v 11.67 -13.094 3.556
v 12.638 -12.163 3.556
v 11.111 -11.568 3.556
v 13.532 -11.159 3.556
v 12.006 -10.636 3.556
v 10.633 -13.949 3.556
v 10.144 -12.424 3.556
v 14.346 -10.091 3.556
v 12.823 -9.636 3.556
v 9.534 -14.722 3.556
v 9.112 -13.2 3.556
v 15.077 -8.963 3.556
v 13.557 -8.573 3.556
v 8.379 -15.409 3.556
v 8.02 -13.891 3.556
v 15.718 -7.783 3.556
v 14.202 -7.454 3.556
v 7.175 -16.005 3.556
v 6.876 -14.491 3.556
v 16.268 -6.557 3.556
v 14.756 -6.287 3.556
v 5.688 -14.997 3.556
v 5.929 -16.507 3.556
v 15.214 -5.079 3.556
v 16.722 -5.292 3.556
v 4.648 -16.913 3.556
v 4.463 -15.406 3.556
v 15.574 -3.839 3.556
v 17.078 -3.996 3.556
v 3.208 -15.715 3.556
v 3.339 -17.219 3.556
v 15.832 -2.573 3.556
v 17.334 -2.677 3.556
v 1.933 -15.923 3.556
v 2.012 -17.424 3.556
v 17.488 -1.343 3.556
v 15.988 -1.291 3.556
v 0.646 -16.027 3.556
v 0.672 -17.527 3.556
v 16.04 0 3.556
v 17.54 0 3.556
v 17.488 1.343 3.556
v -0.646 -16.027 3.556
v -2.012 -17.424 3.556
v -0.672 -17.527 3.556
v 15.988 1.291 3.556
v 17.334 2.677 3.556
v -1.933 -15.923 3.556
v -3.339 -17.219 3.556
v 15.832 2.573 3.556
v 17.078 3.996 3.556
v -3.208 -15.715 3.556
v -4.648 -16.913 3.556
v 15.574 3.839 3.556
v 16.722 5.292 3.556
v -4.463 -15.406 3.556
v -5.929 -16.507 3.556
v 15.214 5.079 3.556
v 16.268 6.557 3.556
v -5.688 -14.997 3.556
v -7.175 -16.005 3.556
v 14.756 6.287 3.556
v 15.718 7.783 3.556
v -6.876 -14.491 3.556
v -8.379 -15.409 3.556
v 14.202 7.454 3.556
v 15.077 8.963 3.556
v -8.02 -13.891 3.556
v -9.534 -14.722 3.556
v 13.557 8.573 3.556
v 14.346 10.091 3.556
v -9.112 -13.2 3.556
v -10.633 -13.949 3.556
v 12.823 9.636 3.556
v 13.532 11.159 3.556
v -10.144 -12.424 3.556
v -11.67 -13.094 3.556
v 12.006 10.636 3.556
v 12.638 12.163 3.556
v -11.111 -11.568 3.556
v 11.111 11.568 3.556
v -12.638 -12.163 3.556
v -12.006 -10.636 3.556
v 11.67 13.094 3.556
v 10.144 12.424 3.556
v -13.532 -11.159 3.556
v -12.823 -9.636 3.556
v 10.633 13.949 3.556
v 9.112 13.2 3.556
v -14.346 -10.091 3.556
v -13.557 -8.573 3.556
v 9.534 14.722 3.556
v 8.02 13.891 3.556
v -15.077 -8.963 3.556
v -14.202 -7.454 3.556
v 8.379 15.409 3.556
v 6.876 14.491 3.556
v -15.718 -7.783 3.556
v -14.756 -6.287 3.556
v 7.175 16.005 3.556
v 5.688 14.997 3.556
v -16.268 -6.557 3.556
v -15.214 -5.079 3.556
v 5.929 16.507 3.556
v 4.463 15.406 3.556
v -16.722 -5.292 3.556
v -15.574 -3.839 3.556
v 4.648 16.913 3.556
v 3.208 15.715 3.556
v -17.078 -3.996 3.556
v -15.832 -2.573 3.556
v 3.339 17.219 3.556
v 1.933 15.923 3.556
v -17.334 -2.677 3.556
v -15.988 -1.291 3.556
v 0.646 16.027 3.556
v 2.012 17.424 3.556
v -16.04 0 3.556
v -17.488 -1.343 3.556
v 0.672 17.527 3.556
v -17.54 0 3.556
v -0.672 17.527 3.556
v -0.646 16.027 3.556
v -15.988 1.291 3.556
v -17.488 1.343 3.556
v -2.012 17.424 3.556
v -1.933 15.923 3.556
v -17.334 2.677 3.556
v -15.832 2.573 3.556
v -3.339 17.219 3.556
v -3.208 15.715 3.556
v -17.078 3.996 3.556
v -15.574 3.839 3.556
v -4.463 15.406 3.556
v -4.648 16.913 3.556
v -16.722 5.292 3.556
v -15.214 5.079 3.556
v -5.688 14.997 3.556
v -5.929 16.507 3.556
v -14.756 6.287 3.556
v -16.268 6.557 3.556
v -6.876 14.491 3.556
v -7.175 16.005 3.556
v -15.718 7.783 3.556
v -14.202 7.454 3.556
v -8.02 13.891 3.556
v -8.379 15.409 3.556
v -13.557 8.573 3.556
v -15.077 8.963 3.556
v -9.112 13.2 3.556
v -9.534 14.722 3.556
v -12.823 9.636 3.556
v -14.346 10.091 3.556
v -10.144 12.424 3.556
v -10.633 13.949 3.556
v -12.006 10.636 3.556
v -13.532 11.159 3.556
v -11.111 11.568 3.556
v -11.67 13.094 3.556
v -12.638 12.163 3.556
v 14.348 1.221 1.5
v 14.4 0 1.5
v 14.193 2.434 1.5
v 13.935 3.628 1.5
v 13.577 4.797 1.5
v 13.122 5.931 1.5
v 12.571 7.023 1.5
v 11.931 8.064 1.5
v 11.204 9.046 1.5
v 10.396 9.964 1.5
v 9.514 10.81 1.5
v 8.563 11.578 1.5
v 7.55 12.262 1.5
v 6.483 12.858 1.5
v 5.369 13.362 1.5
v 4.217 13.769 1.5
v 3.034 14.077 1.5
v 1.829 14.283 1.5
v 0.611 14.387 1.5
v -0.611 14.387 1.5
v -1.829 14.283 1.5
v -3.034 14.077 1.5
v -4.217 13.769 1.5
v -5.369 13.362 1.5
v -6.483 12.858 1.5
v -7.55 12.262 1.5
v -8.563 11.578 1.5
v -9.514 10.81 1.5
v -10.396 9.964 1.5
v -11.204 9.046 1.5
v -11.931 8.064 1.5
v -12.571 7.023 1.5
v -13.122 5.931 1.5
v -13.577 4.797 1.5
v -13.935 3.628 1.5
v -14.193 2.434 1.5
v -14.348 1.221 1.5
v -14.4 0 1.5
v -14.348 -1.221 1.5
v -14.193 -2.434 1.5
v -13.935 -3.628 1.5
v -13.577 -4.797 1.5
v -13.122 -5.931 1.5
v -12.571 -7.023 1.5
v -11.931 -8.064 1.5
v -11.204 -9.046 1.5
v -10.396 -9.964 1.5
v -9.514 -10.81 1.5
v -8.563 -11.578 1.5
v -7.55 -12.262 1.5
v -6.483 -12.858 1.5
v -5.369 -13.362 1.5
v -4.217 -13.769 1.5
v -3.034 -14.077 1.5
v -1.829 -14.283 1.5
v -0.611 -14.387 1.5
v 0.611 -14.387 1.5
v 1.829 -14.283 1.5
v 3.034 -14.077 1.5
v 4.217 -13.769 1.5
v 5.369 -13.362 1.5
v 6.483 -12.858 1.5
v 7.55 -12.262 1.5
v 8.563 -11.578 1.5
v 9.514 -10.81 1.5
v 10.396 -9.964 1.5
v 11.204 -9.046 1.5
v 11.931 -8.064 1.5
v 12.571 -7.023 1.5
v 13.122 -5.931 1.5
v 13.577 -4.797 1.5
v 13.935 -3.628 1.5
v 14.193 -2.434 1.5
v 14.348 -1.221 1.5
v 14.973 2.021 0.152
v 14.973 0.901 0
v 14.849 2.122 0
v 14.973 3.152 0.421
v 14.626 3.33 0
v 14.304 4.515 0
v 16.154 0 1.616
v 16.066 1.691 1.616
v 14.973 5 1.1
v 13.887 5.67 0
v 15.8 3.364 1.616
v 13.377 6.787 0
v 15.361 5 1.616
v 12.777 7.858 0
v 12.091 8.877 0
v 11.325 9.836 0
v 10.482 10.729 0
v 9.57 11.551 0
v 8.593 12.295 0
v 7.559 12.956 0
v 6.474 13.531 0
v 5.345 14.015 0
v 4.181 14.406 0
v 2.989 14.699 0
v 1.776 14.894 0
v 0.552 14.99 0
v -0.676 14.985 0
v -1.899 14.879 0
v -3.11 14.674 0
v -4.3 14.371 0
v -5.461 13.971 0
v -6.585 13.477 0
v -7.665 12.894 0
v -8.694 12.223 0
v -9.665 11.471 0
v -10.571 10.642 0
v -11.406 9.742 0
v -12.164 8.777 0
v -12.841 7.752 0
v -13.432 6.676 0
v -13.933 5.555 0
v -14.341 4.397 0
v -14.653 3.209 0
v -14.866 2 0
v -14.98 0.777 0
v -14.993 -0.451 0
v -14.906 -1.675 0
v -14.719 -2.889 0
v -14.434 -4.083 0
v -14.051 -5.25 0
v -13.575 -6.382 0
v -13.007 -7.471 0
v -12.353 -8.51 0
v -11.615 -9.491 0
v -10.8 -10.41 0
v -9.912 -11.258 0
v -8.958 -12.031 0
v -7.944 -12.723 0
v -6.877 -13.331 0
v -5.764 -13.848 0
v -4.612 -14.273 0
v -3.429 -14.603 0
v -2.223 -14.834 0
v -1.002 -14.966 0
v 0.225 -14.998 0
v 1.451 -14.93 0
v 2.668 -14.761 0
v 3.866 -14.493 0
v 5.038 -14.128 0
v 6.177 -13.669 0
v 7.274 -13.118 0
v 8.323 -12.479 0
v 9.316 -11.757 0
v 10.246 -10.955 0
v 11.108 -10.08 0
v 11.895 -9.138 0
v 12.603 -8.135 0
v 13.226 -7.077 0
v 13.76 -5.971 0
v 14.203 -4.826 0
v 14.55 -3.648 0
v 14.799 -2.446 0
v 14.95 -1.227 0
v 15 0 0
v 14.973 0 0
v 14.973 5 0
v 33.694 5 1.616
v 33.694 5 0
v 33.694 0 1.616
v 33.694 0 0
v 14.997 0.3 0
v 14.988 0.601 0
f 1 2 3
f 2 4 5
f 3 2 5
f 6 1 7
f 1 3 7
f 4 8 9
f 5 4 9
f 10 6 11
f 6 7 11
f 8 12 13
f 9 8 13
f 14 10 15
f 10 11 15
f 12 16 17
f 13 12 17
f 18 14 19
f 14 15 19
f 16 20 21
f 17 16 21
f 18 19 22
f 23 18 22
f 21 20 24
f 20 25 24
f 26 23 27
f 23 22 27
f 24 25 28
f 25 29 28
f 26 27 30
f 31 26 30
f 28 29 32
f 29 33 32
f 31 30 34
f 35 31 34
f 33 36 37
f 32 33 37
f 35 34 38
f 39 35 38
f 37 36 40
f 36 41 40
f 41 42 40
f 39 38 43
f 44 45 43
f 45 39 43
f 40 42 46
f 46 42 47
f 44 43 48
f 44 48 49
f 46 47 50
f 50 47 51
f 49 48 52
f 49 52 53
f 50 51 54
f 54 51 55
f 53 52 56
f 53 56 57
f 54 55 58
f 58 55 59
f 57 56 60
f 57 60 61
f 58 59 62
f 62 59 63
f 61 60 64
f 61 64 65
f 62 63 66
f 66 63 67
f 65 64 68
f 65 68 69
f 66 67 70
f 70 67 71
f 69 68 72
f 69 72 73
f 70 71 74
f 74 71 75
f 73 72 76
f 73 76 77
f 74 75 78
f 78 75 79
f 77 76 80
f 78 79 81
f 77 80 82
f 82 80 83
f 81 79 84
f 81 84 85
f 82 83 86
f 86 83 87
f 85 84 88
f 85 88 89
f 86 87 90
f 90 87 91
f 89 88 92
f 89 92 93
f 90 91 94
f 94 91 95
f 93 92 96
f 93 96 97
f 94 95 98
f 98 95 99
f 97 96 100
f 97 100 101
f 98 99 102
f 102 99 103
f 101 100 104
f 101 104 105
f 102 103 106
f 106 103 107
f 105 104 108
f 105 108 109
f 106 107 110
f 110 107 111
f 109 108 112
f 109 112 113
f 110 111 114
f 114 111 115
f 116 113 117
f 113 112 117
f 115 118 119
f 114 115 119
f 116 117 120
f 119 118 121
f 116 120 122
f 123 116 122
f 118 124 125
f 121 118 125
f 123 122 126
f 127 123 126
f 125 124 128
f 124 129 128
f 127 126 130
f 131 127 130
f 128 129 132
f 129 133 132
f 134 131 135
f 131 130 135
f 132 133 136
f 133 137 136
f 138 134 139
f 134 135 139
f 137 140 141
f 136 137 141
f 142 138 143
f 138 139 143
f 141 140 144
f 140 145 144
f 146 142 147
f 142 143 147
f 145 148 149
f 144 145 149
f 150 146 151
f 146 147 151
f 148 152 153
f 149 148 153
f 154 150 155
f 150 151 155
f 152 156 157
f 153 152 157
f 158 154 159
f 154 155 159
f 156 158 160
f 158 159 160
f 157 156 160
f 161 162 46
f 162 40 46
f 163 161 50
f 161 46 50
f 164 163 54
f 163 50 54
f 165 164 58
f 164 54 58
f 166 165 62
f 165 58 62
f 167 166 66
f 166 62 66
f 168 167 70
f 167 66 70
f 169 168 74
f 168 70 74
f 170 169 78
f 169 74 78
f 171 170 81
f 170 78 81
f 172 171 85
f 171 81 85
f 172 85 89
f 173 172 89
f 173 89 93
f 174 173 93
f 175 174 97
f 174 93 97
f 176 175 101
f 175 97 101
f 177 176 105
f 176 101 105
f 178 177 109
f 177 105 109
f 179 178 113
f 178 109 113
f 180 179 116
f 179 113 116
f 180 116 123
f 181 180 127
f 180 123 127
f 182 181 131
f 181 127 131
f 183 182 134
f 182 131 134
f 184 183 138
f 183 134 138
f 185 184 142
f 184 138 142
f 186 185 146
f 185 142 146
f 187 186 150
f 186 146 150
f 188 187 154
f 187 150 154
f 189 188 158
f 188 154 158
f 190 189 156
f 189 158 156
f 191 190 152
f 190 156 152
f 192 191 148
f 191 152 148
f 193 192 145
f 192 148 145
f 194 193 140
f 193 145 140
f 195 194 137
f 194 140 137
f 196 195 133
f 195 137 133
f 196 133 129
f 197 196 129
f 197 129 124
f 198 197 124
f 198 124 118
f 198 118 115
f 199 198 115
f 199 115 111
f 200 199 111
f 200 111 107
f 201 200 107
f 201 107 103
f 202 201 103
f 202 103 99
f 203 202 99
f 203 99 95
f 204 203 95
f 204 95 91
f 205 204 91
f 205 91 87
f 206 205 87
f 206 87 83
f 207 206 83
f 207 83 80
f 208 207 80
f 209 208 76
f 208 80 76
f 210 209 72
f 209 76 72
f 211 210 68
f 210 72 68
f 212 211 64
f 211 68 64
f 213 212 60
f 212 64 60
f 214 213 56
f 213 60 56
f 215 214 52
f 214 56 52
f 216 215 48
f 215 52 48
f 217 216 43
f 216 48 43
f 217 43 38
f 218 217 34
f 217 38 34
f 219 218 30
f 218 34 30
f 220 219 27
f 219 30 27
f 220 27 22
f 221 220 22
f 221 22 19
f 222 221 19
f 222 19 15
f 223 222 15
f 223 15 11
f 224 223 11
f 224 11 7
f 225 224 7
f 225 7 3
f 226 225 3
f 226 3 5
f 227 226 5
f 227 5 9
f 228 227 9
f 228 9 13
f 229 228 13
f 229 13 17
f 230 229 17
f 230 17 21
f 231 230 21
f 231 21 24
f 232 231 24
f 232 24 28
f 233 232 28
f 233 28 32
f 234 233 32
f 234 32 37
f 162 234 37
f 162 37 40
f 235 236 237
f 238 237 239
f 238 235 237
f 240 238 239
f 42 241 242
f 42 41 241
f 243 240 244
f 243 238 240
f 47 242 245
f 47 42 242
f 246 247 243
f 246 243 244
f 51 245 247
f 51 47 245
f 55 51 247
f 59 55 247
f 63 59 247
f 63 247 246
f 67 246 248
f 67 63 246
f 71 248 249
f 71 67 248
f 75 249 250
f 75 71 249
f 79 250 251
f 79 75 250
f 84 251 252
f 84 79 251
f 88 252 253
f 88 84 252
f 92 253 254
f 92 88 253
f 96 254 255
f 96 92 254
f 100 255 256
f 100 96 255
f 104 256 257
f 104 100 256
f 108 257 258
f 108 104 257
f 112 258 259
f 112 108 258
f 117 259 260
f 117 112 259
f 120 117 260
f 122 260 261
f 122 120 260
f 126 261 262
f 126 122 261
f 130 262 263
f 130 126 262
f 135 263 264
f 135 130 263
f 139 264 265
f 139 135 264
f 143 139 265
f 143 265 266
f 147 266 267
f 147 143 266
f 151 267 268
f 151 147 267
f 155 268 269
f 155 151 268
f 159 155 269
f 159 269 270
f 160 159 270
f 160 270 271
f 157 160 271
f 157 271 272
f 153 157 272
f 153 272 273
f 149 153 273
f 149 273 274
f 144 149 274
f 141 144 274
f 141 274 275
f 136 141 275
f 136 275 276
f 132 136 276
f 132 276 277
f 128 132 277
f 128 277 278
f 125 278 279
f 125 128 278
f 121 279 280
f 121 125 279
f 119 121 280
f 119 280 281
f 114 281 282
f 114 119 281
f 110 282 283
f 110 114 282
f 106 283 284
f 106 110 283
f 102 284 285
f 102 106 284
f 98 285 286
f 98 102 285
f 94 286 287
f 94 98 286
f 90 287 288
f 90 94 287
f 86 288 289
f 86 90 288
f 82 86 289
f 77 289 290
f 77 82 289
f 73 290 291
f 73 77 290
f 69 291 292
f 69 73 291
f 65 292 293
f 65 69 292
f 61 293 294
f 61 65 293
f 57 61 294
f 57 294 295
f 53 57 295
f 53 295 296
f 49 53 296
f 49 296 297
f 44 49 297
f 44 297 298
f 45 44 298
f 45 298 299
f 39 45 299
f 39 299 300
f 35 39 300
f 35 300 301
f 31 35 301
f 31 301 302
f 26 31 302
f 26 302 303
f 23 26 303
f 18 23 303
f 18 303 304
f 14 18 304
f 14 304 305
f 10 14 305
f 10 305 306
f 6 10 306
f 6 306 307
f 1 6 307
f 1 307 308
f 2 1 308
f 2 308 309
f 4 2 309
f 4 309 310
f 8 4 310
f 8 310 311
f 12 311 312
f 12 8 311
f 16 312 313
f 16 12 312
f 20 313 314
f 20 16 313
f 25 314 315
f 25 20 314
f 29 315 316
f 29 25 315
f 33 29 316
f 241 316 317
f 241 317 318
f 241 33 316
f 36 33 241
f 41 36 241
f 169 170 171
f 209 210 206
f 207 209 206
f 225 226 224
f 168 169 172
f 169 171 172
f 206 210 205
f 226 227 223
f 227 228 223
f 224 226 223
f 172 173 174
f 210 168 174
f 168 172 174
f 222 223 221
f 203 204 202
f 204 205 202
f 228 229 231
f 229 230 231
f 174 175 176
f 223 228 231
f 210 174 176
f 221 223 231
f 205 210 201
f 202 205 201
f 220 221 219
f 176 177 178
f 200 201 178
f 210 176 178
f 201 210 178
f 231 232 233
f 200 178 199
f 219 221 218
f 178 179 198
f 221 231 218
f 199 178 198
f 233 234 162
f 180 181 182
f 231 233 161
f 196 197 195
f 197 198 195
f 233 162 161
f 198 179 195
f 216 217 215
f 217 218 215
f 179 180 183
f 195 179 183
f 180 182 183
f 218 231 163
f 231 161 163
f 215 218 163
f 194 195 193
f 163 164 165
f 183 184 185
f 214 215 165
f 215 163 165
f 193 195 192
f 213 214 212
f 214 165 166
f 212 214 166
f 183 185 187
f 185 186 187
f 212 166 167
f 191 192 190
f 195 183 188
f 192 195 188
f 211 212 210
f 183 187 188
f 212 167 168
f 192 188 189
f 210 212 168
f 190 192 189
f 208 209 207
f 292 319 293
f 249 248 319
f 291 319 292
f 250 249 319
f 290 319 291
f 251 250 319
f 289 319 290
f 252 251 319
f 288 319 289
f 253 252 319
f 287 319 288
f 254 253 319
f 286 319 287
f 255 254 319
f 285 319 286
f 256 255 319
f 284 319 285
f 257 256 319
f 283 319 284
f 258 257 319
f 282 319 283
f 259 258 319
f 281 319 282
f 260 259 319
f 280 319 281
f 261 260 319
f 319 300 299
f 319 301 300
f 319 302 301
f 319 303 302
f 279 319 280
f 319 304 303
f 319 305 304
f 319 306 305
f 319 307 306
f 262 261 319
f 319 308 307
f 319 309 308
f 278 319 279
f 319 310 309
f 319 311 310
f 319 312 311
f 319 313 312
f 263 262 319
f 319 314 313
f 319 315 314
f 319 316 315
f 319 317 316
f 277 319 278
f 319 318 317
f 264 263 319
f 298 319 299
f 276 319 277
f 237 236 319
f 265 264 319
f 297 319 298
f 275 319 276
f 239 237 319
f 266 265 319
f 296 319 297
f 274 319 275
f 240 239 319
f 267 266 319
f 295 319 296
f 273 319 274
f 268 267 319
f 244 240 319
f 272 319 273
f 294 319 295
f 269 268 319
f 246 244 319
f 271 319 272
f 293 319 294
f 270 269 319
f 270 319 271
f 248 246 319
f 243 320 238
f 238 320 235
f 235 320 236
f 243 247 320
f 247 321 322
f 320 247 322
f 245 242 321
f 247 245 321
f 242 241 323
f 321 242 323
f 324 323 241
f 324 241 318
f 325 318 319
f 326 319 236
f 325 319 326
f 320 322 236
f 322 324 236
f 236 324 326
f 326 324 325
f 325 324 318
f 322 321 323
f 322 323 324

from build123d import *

# Parameters (mm, degrees)
SKETCH001_AS_DRAWN_W              = 18.720886
SKETCH001_AS_DRAWN_H              = 1.61615
EXTRUDE_DEPTH                     = 5
EXTRUDE_ONTO_SKETCH001_ROLL_ANGLE = 90
REVOLVE_ONTO_SKETCH_ROLL_ANGLE    = 90


with BuildPart() as pan_handle:
    # Sketch001 as drawn → Extrude (new)
    with BuildSketch(Plane.XY):
        with Locations((24.33337, 0.808075)):
            Rectangle(SKETCH001_AS_DRAWN_W, SKETCH001_AS_DRAWN_H)
    extrude(amount=-EXTRUDE_DEPTH)


with BuildPart() as pan_handle_1:
    # Extrude onto Sketch001 roll: moved
    add(pan_handle.part.rotate(Axis((0, 0, 0), (1, 0, 0)), EXTRUDE_ONTO_SKETCH001_ROLL_ANGLE))


with BuildPart() as pan_handle_2:
    # Extrude onto Sketch001 placement: moved
    add(pan_handle_1.part)


with BuildPart() as pan:
    # Sketch as drawn → Revolve (revolve)
    with BuildSketch(Plane.XY):
        Polygon((0, 0), (15, 0), (17.539625, 3.555642), (16.039625, 3.555642), (14.4, 1.5), (0, 1.5), align=None)
    revolve(axis=Axis((0, 0, 0), (0, 1, 0)))


with BuildPart() as pan_1:
    # Revolve onto Sketch roll: moved
    add(pan.part.rotate(Axis((0, 0, 0), (1, 0, 0)), REVOLVE_ONTO_SKETCH_ROLL_ANGLE))


with BuildPart() as pan_2:
    # Revolve onto Sketch placement: moved
    add(pan_1.part)

    # Fusion: union PAN_HANDLE
    add(pan_handle_2.part)


solid = pan_2.part
